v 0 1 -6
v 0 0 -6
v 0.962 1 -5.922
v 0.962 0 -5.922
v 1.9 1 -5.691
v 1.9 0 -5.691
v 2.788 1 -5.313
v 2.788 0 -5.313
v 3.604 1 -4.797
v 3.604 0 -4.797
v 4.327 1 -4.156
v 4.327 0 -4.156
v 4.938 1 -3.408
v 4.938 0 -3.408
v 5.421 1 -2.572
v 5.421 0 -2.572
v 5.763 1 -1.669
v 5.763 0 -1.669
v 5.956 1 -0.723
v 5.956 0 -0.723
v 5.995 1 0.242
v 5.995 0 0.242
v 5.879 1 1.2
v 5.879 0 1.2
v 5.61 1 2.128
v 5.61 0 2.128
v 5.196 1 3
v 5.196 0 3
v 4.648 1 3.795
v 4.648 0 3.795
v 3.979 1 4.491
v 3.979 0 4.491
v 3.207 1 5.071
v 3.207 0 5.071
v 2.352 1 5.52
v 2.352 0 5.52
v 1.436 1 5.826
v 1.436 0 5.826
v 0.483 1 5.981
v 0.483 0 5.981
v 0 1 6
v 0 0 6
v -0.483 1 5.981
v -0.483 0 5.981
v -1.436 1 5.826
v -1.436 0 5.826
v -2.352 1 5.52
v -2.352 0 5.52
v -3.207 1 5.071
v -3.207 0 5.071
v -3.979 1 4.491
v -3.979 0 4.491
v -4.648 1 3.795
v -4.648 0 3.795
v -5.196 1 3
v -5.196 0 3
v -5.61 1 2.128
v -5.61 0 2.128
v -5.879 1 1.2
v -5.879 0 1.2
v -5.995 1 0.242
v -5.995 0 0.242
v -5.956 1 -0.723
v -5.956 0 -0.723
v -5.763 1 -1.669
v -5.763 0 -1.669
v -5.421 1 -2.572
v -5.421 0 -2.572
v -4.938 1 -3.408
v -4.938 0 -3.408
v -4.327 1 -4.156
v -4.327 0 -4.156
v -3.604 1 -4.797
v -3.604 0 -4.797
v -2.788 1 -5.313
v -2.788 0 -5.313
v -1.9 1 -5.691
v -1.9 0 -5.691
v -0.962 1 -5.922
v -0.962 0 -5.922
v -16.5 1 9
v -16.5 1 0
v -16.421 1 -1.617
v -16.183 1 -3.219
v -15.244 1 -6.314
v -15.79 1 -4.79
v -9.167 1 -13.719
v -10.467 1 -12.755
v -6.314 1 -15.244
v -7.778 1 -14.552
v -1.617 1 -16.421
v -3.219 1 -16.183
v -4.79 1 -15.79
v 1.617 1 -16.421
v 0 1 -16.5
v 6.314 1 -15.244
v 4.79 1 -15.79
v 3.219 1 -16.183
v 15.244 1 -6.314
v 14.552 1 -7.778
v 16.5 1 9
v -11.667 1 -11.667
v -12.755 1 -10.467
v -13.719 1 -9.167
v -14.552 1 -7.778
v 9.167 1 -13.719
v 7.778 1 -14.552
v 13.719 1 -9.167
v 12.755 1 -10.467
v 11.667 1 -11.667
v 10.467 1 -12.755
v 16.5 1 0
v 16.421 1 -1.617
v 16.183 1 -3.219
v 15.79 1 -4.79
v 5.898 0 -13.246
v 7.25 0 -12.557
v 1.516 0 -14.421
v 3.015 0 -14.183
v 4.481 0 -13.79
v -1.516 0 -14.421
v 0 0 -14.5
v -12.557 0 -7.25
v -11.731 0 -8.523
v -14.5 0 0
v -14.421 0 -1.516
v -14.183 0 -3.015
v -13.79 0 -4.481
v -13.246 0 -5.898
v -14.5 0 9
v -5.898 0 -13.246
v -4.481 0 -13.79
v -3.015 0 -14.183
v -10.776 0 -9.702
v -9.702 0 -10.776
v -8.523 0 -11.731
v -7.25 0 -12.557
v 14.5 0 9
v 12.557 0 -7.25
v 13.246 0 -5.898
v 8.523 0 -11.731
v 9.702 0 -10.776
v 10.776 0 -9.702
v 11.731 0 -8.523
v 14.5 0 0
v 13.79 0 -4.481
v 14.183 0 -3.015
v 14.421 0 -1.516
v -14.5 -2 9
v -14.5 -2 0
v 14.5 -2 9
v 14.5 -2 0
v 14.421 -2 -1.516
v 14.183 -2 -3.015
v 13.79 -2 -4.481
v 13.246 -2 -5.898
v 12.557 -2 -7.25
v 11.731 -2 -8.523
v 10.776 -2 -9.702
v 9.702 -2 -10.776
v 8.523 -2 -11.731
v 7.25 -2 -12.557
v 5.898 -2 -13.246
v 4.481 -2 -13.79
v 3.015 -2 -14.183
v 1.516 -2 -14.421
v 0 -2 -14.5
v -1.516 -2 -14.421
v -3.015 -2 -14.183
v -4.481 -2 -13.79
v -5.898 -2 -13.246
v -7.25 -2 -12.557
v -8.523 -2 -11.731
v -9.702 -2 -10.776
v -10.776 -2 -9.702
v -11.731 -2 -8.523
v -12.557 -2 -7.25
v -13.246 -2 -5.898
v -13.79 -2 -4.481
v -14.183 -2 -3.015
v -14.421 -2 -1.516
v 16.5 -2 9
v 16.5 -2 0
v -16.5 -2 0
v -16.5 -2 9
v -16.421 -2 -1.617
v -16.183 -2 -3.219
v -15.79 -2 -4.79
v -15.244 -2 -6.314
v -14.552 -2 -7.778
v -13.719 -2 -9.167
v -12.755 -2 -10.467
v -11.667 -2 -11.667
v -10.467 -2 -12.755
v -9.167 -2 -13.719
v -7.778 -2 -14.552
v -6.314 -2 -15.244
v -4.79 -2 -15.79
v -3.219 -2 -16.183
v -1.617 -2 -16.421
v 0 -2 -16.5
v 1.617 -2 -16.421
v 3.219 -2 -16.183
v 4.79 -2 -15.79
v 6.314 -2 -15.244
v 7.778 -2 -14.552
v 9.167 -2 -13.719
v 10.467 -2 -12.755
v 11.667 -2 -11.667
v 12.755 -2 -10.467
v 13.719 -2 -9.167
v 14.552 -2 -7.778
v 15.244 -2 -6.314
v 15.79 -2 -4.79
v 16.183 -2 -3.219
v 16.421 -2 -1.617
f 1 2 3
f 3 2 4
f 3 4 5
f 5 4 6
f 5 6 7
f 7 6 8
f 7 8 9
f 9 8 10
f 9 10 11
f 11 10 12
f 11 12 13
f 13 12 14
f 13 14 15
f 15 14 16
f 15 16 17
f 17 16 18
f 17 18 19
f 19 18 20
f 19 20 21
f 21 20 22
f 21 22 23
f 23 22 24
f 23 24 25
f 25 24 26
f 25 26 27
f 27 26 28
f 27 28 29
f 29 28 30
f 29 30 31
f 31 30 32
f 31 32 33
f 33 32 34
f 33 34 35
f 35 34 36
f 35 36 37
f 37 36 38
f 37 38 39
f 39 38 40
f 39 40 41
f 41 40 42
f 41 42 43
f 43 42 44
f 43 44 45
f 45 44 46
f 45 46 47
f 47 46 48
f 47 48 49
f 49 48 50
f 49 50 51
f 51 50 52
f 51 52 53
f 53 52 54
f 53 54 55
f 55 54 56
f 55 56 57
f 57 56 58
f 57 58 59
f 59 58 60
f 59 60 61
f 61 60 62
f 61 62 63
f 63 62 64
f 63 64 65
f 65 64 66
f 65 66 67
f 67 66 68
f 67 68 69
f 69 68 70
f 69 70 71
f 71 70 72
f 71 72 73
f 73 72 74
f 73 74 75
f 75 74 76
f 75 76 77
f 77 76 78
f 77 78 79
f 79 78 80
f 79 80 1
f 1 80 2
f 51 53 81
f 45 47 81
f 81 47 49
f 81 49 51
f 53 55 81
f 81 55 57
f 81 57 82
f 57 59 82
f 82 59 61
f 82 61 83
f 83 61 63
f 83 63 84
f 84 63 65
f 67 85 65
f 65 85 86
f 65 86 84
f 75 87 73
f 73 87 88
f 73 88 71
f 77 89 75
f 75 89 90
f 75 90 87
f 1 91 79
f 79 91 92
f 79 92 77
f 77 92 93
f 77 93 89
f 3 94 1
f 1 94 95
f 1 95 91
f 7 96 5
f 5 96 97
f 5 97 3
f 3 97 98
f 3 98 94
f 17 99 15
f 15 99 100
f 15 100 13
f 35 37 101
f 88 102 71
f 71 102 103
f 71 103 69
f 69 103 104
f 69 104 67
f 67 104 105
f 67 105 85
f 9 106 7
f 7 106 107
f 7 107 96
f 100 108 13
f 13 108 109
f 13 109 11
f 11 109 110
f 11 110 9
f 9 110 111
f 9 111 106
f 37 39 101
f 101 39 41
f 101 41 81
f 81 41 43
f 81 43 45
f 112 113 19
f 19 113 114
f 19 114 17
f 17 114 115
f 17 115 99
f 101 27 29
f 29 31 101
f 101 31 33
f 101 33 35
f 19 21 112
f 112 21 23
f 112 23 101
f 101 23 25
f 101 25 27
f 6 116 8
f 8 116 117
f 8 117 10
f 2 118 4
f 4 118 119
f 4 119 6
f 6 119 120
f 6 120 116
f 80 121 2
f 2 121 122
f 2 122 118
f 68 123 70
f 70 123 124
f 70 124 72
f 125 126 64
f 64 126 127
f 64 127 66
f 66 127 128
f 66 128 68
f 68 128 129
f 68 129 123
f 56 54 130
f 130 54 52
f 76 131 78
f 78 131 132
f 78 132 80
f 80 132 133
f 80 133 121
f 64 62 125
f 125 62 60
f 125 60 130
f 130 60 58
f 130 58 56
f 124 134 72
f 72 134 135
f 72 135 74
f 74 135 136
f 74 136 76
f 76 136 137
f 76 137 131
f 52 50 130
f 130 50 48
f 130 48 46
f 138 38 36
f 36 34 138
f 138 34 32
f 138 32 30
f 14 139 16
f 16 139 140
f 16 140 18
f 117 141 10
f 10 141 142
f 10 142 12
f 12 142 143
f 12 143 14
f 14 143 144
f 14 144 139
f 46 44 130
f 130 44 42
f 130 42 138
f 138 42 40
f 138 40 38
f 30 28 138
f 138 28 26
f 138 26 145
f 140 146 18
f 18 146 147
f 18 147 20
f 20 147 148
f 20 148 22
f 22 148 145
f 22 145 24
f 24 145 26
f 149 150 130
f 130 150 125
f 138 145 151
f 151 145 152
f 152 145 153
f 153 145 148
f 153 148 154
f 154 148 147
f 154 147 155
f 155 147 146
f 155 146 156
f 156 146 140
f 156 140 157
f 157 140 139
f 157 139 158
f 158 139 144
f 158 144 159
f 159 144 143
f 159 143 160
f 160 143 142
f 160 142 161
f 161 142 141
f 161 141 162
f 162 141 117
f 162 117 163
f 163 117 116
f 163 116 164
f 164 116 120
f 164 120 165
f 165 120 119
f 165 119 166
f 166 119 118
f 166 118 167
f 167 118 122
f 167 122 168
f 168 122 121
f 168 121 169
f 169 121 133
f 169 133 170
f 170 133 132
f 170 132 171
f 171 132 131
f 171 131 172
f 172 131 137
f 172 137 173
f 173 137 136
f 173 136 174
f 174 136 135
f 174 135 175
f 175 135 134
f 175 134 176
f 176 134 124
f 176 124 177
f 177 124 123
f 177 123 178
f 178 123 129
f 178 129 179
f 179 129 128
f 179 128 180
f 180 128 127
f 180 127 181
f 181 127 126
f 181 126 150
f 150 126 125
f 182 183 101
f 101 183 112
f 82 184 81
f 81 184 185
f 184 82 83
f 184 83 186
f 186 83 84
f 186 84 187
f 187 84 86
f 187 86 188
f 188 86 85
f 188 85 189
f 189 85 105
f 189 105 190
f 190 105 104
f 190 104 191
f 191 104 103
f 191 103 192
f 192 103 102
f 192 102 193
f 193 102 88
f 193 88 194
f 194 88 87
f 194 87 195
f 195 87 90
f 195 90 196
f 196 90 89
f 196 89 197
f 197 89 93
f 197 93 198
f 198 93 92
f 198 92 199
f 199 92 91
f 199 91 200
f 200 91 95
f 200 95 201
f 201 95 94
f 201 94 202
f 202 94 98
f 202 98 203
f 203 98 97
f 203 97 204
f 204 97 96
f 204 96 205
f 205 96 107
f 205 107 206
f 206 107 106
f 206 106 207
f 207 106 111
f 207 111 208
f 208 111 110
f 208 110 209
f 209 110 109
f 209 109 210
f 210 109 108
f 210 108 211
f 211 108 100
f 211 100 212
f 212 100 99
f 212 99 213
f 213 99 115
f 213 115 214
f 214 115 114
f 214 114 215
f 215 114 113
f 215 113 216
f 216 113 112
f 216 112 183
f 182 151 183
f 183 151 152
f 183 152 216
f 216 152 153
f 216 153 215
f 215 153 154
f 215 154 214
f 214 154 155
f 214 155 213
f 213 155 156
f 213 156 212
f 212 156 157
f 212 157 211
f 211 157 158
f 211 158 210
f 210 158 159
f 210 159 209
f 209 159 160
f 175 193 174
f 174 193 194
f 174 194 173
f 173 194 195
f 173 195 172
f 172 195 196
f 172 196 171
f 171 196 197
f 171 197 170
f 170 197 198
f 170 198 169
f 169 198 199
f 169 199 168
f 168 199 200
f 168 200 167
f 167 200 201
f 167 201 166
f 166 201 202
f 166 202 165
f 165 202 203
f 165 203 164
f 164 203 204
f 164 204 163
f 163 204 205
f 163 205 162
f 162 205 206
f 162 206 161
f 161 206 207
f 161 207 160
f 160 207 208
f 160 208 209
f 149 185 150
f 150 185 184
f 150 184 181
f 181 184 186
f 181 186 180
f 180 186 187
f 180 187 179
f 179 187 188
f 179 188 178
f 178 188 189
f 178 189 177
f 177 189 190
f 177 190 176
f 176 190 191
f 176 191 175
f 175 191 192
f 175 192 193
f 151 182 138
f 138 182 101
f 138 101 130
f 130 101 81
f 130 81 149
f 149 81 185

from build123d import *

# Parameters (mm, degrees)
SKETCH1_R               = 14.5
SKETCH1_R_2             = 6
BOSS_EXTRUDE1_DEPTH     = 1
BOSS_EXTRUDE2_START     = -3
BOSS_EXTRUDE2_DEPTH     = 3
CUT_EXTRUDE1_DEPTH      = 24.526580712
CUT_EXTRUDE1_DEPTH_BACK = 24.526580712
SKETCH3_W               = 29
SKETCH3_H               = 5.5


with BuildPart() as part:
    # Sketch1 → Boss-Extrude1 (new body)
    # profile 1 of 3: a face of its own
    with BuildSketch(Plane(origin=(0, 0, 0), x_dir=(1, 0, 0), z_dir=(0, 1, 0))):
        Circle(SKETCH1_R)
        with Locations(Location((0, 0, 0), (0, 0, 270))):
            Circle(SKETCH1_R_2, mode=Mode.SUBTRACT)
    # profile 2 of 3: a face of its own
    with BuildSketch(Plane(origin=(0, 0, 0), x_dir=(1, 0, 0), z_dir=(0, 1, 0))):
        with BuildLine():
            ThreePointArc((0, -14.5), (-10.253048327, -10.253048327), (-14.5, 0))
            Line((-14.5, 0), (-14.5, -14.5))
            Line((-14.5, -14.5), (0, -14.5))
        make_face()
    # profile 3 of 3: a face of its own
    with BuildSketch(Plane(origin=(0, 0, 0), x_dir=(1, 0, 0), z_dir=(0, 1, 0))):
        with BuildLine():
            Line((14.5, -14.5), (14.5, 0))
            ThreePointArc((14.5, 0), (10.253048327, -10.253048327), (0, -14.5))
            Line((0, -14.5), (14.5, -14.5))
        make_face()
    extrude(amount=BOSS_EXTRUDE1_DEPTH)

    # Sketch2 → Boss-Extrude2 (add)
    with BuildSketch(Plane(origin=(0, 1, 0), x_dir=(1, 0, 0), z_dir=(0, 1, 0)).offset(BOSS_EXTRUDE2_START)):
        with BuildLine():
            ThreePointArc((7.874007874, -14.5), (4.062019223, -15.992185587), (4.2e-08, -16.5))
            Line((4.2e-08, -16.5), (16.5, -16.5))
            Line((16.5, -16.5), (16.5, 0))
            ThreePointArc((16.5, 0), (15.992185592, -4.062019202), (14.5, -7.874007874))
            Line((14.5, -7.874007874), (14.5, -14.5))
            Line((14.5, -14.5), (7.874007874, -14.5))
        make_face()
        with BuildLine():
            ThreePointArc((-7.874007874, -14.5), (-4.062019182, -15.992185597), (4.2e-08, -16.5))
            ThreePointArc((4.2e-08, -16.5), (4.062019223, -15.992185587), (7.874007874, -14.5))
            Line((7.874007874, -14.5), (-7.874007874, -14.5))
        make_face()
        with BuildLine():
            ThreePointArc((-14.5, -7.874007874), (-15.992185592, -4.062019202), (-16.5, 0))
            Line((-16.5, 0), (-16.5, -16.5))
            Line((-16.5, -16.5), (4.2e-08, -16.5))
            ThreePointArc((4.2e-08, -16.5), (-4.062019182, -15.992185597), (-7.874007874, -14.5))
            Line((-7.874007874, -14.5), (-14.5, -14.5))
            Line((-14.5, -14.5), (-14.5, -7.874007874))
        make_face()
        with BuildLine():
            Line((-14.5, 0), (-16.5, 0))
            ThreePointArc((-16.5, 0), (-15.992185592, -4.062019202), (-14.5, -7.874007874))
            Line((-14.5, -7.874007874), (-14.5, 0))
        make_face()
        with BuildLine():
            Line((16.5, 0), (14.5, 0))
            Line((14.5, 0), (14.5, -7.874007874))
            ThreePointArc((14.5, -7.874007874), (15.992185592, -4.062019202), (16.5, 0))
        make_face()
        with BuildLine():
            ThreePointArc((3.4e-08, 16.5), (-11.667261877, 11.667261902), (-16.5, 0))
            Line((-16.5, 0), (-14.5, 0))
            ThreePointArc((-14.5, 0), (0, 14.5), (14.5, 0))
            Line((14.5, 0), (16.5, 0))
            ThreePointArc((16.5, 0), (11.667261902, 11.667261877), (3.4e-08, 16.5))
        make_face()
    extrude(amount=BOSS_EXTRUDE2_DEPTH)

    # Sketch3 → Cut-Extrude1 (cut, two sides: drawn at the far end of the back side and taken through both)
    with BuildSketch(Plane.XZ.offset(2).offset(-CUT_EXTRUDE1_DEPTH_BACK)):
        Polygon((16.5, 16.5), (-16.5, 16.5), (-16.5, 9), (-14.5, 9), (-14.5, 14.5), (14.5, 14.5), (14.5, 9), (16.5, 9), align=None)
        with Locations((0, 11.75)):
            Rectangle(SKETCH3_W, SKETCH3_H)
    extrude(amount=CUT_EXTRUDE1_DEPTH + CUT_EXTRUDE1_DEPTH_BACK, mode=Mode.SUBTRACT)


solid = part.part
